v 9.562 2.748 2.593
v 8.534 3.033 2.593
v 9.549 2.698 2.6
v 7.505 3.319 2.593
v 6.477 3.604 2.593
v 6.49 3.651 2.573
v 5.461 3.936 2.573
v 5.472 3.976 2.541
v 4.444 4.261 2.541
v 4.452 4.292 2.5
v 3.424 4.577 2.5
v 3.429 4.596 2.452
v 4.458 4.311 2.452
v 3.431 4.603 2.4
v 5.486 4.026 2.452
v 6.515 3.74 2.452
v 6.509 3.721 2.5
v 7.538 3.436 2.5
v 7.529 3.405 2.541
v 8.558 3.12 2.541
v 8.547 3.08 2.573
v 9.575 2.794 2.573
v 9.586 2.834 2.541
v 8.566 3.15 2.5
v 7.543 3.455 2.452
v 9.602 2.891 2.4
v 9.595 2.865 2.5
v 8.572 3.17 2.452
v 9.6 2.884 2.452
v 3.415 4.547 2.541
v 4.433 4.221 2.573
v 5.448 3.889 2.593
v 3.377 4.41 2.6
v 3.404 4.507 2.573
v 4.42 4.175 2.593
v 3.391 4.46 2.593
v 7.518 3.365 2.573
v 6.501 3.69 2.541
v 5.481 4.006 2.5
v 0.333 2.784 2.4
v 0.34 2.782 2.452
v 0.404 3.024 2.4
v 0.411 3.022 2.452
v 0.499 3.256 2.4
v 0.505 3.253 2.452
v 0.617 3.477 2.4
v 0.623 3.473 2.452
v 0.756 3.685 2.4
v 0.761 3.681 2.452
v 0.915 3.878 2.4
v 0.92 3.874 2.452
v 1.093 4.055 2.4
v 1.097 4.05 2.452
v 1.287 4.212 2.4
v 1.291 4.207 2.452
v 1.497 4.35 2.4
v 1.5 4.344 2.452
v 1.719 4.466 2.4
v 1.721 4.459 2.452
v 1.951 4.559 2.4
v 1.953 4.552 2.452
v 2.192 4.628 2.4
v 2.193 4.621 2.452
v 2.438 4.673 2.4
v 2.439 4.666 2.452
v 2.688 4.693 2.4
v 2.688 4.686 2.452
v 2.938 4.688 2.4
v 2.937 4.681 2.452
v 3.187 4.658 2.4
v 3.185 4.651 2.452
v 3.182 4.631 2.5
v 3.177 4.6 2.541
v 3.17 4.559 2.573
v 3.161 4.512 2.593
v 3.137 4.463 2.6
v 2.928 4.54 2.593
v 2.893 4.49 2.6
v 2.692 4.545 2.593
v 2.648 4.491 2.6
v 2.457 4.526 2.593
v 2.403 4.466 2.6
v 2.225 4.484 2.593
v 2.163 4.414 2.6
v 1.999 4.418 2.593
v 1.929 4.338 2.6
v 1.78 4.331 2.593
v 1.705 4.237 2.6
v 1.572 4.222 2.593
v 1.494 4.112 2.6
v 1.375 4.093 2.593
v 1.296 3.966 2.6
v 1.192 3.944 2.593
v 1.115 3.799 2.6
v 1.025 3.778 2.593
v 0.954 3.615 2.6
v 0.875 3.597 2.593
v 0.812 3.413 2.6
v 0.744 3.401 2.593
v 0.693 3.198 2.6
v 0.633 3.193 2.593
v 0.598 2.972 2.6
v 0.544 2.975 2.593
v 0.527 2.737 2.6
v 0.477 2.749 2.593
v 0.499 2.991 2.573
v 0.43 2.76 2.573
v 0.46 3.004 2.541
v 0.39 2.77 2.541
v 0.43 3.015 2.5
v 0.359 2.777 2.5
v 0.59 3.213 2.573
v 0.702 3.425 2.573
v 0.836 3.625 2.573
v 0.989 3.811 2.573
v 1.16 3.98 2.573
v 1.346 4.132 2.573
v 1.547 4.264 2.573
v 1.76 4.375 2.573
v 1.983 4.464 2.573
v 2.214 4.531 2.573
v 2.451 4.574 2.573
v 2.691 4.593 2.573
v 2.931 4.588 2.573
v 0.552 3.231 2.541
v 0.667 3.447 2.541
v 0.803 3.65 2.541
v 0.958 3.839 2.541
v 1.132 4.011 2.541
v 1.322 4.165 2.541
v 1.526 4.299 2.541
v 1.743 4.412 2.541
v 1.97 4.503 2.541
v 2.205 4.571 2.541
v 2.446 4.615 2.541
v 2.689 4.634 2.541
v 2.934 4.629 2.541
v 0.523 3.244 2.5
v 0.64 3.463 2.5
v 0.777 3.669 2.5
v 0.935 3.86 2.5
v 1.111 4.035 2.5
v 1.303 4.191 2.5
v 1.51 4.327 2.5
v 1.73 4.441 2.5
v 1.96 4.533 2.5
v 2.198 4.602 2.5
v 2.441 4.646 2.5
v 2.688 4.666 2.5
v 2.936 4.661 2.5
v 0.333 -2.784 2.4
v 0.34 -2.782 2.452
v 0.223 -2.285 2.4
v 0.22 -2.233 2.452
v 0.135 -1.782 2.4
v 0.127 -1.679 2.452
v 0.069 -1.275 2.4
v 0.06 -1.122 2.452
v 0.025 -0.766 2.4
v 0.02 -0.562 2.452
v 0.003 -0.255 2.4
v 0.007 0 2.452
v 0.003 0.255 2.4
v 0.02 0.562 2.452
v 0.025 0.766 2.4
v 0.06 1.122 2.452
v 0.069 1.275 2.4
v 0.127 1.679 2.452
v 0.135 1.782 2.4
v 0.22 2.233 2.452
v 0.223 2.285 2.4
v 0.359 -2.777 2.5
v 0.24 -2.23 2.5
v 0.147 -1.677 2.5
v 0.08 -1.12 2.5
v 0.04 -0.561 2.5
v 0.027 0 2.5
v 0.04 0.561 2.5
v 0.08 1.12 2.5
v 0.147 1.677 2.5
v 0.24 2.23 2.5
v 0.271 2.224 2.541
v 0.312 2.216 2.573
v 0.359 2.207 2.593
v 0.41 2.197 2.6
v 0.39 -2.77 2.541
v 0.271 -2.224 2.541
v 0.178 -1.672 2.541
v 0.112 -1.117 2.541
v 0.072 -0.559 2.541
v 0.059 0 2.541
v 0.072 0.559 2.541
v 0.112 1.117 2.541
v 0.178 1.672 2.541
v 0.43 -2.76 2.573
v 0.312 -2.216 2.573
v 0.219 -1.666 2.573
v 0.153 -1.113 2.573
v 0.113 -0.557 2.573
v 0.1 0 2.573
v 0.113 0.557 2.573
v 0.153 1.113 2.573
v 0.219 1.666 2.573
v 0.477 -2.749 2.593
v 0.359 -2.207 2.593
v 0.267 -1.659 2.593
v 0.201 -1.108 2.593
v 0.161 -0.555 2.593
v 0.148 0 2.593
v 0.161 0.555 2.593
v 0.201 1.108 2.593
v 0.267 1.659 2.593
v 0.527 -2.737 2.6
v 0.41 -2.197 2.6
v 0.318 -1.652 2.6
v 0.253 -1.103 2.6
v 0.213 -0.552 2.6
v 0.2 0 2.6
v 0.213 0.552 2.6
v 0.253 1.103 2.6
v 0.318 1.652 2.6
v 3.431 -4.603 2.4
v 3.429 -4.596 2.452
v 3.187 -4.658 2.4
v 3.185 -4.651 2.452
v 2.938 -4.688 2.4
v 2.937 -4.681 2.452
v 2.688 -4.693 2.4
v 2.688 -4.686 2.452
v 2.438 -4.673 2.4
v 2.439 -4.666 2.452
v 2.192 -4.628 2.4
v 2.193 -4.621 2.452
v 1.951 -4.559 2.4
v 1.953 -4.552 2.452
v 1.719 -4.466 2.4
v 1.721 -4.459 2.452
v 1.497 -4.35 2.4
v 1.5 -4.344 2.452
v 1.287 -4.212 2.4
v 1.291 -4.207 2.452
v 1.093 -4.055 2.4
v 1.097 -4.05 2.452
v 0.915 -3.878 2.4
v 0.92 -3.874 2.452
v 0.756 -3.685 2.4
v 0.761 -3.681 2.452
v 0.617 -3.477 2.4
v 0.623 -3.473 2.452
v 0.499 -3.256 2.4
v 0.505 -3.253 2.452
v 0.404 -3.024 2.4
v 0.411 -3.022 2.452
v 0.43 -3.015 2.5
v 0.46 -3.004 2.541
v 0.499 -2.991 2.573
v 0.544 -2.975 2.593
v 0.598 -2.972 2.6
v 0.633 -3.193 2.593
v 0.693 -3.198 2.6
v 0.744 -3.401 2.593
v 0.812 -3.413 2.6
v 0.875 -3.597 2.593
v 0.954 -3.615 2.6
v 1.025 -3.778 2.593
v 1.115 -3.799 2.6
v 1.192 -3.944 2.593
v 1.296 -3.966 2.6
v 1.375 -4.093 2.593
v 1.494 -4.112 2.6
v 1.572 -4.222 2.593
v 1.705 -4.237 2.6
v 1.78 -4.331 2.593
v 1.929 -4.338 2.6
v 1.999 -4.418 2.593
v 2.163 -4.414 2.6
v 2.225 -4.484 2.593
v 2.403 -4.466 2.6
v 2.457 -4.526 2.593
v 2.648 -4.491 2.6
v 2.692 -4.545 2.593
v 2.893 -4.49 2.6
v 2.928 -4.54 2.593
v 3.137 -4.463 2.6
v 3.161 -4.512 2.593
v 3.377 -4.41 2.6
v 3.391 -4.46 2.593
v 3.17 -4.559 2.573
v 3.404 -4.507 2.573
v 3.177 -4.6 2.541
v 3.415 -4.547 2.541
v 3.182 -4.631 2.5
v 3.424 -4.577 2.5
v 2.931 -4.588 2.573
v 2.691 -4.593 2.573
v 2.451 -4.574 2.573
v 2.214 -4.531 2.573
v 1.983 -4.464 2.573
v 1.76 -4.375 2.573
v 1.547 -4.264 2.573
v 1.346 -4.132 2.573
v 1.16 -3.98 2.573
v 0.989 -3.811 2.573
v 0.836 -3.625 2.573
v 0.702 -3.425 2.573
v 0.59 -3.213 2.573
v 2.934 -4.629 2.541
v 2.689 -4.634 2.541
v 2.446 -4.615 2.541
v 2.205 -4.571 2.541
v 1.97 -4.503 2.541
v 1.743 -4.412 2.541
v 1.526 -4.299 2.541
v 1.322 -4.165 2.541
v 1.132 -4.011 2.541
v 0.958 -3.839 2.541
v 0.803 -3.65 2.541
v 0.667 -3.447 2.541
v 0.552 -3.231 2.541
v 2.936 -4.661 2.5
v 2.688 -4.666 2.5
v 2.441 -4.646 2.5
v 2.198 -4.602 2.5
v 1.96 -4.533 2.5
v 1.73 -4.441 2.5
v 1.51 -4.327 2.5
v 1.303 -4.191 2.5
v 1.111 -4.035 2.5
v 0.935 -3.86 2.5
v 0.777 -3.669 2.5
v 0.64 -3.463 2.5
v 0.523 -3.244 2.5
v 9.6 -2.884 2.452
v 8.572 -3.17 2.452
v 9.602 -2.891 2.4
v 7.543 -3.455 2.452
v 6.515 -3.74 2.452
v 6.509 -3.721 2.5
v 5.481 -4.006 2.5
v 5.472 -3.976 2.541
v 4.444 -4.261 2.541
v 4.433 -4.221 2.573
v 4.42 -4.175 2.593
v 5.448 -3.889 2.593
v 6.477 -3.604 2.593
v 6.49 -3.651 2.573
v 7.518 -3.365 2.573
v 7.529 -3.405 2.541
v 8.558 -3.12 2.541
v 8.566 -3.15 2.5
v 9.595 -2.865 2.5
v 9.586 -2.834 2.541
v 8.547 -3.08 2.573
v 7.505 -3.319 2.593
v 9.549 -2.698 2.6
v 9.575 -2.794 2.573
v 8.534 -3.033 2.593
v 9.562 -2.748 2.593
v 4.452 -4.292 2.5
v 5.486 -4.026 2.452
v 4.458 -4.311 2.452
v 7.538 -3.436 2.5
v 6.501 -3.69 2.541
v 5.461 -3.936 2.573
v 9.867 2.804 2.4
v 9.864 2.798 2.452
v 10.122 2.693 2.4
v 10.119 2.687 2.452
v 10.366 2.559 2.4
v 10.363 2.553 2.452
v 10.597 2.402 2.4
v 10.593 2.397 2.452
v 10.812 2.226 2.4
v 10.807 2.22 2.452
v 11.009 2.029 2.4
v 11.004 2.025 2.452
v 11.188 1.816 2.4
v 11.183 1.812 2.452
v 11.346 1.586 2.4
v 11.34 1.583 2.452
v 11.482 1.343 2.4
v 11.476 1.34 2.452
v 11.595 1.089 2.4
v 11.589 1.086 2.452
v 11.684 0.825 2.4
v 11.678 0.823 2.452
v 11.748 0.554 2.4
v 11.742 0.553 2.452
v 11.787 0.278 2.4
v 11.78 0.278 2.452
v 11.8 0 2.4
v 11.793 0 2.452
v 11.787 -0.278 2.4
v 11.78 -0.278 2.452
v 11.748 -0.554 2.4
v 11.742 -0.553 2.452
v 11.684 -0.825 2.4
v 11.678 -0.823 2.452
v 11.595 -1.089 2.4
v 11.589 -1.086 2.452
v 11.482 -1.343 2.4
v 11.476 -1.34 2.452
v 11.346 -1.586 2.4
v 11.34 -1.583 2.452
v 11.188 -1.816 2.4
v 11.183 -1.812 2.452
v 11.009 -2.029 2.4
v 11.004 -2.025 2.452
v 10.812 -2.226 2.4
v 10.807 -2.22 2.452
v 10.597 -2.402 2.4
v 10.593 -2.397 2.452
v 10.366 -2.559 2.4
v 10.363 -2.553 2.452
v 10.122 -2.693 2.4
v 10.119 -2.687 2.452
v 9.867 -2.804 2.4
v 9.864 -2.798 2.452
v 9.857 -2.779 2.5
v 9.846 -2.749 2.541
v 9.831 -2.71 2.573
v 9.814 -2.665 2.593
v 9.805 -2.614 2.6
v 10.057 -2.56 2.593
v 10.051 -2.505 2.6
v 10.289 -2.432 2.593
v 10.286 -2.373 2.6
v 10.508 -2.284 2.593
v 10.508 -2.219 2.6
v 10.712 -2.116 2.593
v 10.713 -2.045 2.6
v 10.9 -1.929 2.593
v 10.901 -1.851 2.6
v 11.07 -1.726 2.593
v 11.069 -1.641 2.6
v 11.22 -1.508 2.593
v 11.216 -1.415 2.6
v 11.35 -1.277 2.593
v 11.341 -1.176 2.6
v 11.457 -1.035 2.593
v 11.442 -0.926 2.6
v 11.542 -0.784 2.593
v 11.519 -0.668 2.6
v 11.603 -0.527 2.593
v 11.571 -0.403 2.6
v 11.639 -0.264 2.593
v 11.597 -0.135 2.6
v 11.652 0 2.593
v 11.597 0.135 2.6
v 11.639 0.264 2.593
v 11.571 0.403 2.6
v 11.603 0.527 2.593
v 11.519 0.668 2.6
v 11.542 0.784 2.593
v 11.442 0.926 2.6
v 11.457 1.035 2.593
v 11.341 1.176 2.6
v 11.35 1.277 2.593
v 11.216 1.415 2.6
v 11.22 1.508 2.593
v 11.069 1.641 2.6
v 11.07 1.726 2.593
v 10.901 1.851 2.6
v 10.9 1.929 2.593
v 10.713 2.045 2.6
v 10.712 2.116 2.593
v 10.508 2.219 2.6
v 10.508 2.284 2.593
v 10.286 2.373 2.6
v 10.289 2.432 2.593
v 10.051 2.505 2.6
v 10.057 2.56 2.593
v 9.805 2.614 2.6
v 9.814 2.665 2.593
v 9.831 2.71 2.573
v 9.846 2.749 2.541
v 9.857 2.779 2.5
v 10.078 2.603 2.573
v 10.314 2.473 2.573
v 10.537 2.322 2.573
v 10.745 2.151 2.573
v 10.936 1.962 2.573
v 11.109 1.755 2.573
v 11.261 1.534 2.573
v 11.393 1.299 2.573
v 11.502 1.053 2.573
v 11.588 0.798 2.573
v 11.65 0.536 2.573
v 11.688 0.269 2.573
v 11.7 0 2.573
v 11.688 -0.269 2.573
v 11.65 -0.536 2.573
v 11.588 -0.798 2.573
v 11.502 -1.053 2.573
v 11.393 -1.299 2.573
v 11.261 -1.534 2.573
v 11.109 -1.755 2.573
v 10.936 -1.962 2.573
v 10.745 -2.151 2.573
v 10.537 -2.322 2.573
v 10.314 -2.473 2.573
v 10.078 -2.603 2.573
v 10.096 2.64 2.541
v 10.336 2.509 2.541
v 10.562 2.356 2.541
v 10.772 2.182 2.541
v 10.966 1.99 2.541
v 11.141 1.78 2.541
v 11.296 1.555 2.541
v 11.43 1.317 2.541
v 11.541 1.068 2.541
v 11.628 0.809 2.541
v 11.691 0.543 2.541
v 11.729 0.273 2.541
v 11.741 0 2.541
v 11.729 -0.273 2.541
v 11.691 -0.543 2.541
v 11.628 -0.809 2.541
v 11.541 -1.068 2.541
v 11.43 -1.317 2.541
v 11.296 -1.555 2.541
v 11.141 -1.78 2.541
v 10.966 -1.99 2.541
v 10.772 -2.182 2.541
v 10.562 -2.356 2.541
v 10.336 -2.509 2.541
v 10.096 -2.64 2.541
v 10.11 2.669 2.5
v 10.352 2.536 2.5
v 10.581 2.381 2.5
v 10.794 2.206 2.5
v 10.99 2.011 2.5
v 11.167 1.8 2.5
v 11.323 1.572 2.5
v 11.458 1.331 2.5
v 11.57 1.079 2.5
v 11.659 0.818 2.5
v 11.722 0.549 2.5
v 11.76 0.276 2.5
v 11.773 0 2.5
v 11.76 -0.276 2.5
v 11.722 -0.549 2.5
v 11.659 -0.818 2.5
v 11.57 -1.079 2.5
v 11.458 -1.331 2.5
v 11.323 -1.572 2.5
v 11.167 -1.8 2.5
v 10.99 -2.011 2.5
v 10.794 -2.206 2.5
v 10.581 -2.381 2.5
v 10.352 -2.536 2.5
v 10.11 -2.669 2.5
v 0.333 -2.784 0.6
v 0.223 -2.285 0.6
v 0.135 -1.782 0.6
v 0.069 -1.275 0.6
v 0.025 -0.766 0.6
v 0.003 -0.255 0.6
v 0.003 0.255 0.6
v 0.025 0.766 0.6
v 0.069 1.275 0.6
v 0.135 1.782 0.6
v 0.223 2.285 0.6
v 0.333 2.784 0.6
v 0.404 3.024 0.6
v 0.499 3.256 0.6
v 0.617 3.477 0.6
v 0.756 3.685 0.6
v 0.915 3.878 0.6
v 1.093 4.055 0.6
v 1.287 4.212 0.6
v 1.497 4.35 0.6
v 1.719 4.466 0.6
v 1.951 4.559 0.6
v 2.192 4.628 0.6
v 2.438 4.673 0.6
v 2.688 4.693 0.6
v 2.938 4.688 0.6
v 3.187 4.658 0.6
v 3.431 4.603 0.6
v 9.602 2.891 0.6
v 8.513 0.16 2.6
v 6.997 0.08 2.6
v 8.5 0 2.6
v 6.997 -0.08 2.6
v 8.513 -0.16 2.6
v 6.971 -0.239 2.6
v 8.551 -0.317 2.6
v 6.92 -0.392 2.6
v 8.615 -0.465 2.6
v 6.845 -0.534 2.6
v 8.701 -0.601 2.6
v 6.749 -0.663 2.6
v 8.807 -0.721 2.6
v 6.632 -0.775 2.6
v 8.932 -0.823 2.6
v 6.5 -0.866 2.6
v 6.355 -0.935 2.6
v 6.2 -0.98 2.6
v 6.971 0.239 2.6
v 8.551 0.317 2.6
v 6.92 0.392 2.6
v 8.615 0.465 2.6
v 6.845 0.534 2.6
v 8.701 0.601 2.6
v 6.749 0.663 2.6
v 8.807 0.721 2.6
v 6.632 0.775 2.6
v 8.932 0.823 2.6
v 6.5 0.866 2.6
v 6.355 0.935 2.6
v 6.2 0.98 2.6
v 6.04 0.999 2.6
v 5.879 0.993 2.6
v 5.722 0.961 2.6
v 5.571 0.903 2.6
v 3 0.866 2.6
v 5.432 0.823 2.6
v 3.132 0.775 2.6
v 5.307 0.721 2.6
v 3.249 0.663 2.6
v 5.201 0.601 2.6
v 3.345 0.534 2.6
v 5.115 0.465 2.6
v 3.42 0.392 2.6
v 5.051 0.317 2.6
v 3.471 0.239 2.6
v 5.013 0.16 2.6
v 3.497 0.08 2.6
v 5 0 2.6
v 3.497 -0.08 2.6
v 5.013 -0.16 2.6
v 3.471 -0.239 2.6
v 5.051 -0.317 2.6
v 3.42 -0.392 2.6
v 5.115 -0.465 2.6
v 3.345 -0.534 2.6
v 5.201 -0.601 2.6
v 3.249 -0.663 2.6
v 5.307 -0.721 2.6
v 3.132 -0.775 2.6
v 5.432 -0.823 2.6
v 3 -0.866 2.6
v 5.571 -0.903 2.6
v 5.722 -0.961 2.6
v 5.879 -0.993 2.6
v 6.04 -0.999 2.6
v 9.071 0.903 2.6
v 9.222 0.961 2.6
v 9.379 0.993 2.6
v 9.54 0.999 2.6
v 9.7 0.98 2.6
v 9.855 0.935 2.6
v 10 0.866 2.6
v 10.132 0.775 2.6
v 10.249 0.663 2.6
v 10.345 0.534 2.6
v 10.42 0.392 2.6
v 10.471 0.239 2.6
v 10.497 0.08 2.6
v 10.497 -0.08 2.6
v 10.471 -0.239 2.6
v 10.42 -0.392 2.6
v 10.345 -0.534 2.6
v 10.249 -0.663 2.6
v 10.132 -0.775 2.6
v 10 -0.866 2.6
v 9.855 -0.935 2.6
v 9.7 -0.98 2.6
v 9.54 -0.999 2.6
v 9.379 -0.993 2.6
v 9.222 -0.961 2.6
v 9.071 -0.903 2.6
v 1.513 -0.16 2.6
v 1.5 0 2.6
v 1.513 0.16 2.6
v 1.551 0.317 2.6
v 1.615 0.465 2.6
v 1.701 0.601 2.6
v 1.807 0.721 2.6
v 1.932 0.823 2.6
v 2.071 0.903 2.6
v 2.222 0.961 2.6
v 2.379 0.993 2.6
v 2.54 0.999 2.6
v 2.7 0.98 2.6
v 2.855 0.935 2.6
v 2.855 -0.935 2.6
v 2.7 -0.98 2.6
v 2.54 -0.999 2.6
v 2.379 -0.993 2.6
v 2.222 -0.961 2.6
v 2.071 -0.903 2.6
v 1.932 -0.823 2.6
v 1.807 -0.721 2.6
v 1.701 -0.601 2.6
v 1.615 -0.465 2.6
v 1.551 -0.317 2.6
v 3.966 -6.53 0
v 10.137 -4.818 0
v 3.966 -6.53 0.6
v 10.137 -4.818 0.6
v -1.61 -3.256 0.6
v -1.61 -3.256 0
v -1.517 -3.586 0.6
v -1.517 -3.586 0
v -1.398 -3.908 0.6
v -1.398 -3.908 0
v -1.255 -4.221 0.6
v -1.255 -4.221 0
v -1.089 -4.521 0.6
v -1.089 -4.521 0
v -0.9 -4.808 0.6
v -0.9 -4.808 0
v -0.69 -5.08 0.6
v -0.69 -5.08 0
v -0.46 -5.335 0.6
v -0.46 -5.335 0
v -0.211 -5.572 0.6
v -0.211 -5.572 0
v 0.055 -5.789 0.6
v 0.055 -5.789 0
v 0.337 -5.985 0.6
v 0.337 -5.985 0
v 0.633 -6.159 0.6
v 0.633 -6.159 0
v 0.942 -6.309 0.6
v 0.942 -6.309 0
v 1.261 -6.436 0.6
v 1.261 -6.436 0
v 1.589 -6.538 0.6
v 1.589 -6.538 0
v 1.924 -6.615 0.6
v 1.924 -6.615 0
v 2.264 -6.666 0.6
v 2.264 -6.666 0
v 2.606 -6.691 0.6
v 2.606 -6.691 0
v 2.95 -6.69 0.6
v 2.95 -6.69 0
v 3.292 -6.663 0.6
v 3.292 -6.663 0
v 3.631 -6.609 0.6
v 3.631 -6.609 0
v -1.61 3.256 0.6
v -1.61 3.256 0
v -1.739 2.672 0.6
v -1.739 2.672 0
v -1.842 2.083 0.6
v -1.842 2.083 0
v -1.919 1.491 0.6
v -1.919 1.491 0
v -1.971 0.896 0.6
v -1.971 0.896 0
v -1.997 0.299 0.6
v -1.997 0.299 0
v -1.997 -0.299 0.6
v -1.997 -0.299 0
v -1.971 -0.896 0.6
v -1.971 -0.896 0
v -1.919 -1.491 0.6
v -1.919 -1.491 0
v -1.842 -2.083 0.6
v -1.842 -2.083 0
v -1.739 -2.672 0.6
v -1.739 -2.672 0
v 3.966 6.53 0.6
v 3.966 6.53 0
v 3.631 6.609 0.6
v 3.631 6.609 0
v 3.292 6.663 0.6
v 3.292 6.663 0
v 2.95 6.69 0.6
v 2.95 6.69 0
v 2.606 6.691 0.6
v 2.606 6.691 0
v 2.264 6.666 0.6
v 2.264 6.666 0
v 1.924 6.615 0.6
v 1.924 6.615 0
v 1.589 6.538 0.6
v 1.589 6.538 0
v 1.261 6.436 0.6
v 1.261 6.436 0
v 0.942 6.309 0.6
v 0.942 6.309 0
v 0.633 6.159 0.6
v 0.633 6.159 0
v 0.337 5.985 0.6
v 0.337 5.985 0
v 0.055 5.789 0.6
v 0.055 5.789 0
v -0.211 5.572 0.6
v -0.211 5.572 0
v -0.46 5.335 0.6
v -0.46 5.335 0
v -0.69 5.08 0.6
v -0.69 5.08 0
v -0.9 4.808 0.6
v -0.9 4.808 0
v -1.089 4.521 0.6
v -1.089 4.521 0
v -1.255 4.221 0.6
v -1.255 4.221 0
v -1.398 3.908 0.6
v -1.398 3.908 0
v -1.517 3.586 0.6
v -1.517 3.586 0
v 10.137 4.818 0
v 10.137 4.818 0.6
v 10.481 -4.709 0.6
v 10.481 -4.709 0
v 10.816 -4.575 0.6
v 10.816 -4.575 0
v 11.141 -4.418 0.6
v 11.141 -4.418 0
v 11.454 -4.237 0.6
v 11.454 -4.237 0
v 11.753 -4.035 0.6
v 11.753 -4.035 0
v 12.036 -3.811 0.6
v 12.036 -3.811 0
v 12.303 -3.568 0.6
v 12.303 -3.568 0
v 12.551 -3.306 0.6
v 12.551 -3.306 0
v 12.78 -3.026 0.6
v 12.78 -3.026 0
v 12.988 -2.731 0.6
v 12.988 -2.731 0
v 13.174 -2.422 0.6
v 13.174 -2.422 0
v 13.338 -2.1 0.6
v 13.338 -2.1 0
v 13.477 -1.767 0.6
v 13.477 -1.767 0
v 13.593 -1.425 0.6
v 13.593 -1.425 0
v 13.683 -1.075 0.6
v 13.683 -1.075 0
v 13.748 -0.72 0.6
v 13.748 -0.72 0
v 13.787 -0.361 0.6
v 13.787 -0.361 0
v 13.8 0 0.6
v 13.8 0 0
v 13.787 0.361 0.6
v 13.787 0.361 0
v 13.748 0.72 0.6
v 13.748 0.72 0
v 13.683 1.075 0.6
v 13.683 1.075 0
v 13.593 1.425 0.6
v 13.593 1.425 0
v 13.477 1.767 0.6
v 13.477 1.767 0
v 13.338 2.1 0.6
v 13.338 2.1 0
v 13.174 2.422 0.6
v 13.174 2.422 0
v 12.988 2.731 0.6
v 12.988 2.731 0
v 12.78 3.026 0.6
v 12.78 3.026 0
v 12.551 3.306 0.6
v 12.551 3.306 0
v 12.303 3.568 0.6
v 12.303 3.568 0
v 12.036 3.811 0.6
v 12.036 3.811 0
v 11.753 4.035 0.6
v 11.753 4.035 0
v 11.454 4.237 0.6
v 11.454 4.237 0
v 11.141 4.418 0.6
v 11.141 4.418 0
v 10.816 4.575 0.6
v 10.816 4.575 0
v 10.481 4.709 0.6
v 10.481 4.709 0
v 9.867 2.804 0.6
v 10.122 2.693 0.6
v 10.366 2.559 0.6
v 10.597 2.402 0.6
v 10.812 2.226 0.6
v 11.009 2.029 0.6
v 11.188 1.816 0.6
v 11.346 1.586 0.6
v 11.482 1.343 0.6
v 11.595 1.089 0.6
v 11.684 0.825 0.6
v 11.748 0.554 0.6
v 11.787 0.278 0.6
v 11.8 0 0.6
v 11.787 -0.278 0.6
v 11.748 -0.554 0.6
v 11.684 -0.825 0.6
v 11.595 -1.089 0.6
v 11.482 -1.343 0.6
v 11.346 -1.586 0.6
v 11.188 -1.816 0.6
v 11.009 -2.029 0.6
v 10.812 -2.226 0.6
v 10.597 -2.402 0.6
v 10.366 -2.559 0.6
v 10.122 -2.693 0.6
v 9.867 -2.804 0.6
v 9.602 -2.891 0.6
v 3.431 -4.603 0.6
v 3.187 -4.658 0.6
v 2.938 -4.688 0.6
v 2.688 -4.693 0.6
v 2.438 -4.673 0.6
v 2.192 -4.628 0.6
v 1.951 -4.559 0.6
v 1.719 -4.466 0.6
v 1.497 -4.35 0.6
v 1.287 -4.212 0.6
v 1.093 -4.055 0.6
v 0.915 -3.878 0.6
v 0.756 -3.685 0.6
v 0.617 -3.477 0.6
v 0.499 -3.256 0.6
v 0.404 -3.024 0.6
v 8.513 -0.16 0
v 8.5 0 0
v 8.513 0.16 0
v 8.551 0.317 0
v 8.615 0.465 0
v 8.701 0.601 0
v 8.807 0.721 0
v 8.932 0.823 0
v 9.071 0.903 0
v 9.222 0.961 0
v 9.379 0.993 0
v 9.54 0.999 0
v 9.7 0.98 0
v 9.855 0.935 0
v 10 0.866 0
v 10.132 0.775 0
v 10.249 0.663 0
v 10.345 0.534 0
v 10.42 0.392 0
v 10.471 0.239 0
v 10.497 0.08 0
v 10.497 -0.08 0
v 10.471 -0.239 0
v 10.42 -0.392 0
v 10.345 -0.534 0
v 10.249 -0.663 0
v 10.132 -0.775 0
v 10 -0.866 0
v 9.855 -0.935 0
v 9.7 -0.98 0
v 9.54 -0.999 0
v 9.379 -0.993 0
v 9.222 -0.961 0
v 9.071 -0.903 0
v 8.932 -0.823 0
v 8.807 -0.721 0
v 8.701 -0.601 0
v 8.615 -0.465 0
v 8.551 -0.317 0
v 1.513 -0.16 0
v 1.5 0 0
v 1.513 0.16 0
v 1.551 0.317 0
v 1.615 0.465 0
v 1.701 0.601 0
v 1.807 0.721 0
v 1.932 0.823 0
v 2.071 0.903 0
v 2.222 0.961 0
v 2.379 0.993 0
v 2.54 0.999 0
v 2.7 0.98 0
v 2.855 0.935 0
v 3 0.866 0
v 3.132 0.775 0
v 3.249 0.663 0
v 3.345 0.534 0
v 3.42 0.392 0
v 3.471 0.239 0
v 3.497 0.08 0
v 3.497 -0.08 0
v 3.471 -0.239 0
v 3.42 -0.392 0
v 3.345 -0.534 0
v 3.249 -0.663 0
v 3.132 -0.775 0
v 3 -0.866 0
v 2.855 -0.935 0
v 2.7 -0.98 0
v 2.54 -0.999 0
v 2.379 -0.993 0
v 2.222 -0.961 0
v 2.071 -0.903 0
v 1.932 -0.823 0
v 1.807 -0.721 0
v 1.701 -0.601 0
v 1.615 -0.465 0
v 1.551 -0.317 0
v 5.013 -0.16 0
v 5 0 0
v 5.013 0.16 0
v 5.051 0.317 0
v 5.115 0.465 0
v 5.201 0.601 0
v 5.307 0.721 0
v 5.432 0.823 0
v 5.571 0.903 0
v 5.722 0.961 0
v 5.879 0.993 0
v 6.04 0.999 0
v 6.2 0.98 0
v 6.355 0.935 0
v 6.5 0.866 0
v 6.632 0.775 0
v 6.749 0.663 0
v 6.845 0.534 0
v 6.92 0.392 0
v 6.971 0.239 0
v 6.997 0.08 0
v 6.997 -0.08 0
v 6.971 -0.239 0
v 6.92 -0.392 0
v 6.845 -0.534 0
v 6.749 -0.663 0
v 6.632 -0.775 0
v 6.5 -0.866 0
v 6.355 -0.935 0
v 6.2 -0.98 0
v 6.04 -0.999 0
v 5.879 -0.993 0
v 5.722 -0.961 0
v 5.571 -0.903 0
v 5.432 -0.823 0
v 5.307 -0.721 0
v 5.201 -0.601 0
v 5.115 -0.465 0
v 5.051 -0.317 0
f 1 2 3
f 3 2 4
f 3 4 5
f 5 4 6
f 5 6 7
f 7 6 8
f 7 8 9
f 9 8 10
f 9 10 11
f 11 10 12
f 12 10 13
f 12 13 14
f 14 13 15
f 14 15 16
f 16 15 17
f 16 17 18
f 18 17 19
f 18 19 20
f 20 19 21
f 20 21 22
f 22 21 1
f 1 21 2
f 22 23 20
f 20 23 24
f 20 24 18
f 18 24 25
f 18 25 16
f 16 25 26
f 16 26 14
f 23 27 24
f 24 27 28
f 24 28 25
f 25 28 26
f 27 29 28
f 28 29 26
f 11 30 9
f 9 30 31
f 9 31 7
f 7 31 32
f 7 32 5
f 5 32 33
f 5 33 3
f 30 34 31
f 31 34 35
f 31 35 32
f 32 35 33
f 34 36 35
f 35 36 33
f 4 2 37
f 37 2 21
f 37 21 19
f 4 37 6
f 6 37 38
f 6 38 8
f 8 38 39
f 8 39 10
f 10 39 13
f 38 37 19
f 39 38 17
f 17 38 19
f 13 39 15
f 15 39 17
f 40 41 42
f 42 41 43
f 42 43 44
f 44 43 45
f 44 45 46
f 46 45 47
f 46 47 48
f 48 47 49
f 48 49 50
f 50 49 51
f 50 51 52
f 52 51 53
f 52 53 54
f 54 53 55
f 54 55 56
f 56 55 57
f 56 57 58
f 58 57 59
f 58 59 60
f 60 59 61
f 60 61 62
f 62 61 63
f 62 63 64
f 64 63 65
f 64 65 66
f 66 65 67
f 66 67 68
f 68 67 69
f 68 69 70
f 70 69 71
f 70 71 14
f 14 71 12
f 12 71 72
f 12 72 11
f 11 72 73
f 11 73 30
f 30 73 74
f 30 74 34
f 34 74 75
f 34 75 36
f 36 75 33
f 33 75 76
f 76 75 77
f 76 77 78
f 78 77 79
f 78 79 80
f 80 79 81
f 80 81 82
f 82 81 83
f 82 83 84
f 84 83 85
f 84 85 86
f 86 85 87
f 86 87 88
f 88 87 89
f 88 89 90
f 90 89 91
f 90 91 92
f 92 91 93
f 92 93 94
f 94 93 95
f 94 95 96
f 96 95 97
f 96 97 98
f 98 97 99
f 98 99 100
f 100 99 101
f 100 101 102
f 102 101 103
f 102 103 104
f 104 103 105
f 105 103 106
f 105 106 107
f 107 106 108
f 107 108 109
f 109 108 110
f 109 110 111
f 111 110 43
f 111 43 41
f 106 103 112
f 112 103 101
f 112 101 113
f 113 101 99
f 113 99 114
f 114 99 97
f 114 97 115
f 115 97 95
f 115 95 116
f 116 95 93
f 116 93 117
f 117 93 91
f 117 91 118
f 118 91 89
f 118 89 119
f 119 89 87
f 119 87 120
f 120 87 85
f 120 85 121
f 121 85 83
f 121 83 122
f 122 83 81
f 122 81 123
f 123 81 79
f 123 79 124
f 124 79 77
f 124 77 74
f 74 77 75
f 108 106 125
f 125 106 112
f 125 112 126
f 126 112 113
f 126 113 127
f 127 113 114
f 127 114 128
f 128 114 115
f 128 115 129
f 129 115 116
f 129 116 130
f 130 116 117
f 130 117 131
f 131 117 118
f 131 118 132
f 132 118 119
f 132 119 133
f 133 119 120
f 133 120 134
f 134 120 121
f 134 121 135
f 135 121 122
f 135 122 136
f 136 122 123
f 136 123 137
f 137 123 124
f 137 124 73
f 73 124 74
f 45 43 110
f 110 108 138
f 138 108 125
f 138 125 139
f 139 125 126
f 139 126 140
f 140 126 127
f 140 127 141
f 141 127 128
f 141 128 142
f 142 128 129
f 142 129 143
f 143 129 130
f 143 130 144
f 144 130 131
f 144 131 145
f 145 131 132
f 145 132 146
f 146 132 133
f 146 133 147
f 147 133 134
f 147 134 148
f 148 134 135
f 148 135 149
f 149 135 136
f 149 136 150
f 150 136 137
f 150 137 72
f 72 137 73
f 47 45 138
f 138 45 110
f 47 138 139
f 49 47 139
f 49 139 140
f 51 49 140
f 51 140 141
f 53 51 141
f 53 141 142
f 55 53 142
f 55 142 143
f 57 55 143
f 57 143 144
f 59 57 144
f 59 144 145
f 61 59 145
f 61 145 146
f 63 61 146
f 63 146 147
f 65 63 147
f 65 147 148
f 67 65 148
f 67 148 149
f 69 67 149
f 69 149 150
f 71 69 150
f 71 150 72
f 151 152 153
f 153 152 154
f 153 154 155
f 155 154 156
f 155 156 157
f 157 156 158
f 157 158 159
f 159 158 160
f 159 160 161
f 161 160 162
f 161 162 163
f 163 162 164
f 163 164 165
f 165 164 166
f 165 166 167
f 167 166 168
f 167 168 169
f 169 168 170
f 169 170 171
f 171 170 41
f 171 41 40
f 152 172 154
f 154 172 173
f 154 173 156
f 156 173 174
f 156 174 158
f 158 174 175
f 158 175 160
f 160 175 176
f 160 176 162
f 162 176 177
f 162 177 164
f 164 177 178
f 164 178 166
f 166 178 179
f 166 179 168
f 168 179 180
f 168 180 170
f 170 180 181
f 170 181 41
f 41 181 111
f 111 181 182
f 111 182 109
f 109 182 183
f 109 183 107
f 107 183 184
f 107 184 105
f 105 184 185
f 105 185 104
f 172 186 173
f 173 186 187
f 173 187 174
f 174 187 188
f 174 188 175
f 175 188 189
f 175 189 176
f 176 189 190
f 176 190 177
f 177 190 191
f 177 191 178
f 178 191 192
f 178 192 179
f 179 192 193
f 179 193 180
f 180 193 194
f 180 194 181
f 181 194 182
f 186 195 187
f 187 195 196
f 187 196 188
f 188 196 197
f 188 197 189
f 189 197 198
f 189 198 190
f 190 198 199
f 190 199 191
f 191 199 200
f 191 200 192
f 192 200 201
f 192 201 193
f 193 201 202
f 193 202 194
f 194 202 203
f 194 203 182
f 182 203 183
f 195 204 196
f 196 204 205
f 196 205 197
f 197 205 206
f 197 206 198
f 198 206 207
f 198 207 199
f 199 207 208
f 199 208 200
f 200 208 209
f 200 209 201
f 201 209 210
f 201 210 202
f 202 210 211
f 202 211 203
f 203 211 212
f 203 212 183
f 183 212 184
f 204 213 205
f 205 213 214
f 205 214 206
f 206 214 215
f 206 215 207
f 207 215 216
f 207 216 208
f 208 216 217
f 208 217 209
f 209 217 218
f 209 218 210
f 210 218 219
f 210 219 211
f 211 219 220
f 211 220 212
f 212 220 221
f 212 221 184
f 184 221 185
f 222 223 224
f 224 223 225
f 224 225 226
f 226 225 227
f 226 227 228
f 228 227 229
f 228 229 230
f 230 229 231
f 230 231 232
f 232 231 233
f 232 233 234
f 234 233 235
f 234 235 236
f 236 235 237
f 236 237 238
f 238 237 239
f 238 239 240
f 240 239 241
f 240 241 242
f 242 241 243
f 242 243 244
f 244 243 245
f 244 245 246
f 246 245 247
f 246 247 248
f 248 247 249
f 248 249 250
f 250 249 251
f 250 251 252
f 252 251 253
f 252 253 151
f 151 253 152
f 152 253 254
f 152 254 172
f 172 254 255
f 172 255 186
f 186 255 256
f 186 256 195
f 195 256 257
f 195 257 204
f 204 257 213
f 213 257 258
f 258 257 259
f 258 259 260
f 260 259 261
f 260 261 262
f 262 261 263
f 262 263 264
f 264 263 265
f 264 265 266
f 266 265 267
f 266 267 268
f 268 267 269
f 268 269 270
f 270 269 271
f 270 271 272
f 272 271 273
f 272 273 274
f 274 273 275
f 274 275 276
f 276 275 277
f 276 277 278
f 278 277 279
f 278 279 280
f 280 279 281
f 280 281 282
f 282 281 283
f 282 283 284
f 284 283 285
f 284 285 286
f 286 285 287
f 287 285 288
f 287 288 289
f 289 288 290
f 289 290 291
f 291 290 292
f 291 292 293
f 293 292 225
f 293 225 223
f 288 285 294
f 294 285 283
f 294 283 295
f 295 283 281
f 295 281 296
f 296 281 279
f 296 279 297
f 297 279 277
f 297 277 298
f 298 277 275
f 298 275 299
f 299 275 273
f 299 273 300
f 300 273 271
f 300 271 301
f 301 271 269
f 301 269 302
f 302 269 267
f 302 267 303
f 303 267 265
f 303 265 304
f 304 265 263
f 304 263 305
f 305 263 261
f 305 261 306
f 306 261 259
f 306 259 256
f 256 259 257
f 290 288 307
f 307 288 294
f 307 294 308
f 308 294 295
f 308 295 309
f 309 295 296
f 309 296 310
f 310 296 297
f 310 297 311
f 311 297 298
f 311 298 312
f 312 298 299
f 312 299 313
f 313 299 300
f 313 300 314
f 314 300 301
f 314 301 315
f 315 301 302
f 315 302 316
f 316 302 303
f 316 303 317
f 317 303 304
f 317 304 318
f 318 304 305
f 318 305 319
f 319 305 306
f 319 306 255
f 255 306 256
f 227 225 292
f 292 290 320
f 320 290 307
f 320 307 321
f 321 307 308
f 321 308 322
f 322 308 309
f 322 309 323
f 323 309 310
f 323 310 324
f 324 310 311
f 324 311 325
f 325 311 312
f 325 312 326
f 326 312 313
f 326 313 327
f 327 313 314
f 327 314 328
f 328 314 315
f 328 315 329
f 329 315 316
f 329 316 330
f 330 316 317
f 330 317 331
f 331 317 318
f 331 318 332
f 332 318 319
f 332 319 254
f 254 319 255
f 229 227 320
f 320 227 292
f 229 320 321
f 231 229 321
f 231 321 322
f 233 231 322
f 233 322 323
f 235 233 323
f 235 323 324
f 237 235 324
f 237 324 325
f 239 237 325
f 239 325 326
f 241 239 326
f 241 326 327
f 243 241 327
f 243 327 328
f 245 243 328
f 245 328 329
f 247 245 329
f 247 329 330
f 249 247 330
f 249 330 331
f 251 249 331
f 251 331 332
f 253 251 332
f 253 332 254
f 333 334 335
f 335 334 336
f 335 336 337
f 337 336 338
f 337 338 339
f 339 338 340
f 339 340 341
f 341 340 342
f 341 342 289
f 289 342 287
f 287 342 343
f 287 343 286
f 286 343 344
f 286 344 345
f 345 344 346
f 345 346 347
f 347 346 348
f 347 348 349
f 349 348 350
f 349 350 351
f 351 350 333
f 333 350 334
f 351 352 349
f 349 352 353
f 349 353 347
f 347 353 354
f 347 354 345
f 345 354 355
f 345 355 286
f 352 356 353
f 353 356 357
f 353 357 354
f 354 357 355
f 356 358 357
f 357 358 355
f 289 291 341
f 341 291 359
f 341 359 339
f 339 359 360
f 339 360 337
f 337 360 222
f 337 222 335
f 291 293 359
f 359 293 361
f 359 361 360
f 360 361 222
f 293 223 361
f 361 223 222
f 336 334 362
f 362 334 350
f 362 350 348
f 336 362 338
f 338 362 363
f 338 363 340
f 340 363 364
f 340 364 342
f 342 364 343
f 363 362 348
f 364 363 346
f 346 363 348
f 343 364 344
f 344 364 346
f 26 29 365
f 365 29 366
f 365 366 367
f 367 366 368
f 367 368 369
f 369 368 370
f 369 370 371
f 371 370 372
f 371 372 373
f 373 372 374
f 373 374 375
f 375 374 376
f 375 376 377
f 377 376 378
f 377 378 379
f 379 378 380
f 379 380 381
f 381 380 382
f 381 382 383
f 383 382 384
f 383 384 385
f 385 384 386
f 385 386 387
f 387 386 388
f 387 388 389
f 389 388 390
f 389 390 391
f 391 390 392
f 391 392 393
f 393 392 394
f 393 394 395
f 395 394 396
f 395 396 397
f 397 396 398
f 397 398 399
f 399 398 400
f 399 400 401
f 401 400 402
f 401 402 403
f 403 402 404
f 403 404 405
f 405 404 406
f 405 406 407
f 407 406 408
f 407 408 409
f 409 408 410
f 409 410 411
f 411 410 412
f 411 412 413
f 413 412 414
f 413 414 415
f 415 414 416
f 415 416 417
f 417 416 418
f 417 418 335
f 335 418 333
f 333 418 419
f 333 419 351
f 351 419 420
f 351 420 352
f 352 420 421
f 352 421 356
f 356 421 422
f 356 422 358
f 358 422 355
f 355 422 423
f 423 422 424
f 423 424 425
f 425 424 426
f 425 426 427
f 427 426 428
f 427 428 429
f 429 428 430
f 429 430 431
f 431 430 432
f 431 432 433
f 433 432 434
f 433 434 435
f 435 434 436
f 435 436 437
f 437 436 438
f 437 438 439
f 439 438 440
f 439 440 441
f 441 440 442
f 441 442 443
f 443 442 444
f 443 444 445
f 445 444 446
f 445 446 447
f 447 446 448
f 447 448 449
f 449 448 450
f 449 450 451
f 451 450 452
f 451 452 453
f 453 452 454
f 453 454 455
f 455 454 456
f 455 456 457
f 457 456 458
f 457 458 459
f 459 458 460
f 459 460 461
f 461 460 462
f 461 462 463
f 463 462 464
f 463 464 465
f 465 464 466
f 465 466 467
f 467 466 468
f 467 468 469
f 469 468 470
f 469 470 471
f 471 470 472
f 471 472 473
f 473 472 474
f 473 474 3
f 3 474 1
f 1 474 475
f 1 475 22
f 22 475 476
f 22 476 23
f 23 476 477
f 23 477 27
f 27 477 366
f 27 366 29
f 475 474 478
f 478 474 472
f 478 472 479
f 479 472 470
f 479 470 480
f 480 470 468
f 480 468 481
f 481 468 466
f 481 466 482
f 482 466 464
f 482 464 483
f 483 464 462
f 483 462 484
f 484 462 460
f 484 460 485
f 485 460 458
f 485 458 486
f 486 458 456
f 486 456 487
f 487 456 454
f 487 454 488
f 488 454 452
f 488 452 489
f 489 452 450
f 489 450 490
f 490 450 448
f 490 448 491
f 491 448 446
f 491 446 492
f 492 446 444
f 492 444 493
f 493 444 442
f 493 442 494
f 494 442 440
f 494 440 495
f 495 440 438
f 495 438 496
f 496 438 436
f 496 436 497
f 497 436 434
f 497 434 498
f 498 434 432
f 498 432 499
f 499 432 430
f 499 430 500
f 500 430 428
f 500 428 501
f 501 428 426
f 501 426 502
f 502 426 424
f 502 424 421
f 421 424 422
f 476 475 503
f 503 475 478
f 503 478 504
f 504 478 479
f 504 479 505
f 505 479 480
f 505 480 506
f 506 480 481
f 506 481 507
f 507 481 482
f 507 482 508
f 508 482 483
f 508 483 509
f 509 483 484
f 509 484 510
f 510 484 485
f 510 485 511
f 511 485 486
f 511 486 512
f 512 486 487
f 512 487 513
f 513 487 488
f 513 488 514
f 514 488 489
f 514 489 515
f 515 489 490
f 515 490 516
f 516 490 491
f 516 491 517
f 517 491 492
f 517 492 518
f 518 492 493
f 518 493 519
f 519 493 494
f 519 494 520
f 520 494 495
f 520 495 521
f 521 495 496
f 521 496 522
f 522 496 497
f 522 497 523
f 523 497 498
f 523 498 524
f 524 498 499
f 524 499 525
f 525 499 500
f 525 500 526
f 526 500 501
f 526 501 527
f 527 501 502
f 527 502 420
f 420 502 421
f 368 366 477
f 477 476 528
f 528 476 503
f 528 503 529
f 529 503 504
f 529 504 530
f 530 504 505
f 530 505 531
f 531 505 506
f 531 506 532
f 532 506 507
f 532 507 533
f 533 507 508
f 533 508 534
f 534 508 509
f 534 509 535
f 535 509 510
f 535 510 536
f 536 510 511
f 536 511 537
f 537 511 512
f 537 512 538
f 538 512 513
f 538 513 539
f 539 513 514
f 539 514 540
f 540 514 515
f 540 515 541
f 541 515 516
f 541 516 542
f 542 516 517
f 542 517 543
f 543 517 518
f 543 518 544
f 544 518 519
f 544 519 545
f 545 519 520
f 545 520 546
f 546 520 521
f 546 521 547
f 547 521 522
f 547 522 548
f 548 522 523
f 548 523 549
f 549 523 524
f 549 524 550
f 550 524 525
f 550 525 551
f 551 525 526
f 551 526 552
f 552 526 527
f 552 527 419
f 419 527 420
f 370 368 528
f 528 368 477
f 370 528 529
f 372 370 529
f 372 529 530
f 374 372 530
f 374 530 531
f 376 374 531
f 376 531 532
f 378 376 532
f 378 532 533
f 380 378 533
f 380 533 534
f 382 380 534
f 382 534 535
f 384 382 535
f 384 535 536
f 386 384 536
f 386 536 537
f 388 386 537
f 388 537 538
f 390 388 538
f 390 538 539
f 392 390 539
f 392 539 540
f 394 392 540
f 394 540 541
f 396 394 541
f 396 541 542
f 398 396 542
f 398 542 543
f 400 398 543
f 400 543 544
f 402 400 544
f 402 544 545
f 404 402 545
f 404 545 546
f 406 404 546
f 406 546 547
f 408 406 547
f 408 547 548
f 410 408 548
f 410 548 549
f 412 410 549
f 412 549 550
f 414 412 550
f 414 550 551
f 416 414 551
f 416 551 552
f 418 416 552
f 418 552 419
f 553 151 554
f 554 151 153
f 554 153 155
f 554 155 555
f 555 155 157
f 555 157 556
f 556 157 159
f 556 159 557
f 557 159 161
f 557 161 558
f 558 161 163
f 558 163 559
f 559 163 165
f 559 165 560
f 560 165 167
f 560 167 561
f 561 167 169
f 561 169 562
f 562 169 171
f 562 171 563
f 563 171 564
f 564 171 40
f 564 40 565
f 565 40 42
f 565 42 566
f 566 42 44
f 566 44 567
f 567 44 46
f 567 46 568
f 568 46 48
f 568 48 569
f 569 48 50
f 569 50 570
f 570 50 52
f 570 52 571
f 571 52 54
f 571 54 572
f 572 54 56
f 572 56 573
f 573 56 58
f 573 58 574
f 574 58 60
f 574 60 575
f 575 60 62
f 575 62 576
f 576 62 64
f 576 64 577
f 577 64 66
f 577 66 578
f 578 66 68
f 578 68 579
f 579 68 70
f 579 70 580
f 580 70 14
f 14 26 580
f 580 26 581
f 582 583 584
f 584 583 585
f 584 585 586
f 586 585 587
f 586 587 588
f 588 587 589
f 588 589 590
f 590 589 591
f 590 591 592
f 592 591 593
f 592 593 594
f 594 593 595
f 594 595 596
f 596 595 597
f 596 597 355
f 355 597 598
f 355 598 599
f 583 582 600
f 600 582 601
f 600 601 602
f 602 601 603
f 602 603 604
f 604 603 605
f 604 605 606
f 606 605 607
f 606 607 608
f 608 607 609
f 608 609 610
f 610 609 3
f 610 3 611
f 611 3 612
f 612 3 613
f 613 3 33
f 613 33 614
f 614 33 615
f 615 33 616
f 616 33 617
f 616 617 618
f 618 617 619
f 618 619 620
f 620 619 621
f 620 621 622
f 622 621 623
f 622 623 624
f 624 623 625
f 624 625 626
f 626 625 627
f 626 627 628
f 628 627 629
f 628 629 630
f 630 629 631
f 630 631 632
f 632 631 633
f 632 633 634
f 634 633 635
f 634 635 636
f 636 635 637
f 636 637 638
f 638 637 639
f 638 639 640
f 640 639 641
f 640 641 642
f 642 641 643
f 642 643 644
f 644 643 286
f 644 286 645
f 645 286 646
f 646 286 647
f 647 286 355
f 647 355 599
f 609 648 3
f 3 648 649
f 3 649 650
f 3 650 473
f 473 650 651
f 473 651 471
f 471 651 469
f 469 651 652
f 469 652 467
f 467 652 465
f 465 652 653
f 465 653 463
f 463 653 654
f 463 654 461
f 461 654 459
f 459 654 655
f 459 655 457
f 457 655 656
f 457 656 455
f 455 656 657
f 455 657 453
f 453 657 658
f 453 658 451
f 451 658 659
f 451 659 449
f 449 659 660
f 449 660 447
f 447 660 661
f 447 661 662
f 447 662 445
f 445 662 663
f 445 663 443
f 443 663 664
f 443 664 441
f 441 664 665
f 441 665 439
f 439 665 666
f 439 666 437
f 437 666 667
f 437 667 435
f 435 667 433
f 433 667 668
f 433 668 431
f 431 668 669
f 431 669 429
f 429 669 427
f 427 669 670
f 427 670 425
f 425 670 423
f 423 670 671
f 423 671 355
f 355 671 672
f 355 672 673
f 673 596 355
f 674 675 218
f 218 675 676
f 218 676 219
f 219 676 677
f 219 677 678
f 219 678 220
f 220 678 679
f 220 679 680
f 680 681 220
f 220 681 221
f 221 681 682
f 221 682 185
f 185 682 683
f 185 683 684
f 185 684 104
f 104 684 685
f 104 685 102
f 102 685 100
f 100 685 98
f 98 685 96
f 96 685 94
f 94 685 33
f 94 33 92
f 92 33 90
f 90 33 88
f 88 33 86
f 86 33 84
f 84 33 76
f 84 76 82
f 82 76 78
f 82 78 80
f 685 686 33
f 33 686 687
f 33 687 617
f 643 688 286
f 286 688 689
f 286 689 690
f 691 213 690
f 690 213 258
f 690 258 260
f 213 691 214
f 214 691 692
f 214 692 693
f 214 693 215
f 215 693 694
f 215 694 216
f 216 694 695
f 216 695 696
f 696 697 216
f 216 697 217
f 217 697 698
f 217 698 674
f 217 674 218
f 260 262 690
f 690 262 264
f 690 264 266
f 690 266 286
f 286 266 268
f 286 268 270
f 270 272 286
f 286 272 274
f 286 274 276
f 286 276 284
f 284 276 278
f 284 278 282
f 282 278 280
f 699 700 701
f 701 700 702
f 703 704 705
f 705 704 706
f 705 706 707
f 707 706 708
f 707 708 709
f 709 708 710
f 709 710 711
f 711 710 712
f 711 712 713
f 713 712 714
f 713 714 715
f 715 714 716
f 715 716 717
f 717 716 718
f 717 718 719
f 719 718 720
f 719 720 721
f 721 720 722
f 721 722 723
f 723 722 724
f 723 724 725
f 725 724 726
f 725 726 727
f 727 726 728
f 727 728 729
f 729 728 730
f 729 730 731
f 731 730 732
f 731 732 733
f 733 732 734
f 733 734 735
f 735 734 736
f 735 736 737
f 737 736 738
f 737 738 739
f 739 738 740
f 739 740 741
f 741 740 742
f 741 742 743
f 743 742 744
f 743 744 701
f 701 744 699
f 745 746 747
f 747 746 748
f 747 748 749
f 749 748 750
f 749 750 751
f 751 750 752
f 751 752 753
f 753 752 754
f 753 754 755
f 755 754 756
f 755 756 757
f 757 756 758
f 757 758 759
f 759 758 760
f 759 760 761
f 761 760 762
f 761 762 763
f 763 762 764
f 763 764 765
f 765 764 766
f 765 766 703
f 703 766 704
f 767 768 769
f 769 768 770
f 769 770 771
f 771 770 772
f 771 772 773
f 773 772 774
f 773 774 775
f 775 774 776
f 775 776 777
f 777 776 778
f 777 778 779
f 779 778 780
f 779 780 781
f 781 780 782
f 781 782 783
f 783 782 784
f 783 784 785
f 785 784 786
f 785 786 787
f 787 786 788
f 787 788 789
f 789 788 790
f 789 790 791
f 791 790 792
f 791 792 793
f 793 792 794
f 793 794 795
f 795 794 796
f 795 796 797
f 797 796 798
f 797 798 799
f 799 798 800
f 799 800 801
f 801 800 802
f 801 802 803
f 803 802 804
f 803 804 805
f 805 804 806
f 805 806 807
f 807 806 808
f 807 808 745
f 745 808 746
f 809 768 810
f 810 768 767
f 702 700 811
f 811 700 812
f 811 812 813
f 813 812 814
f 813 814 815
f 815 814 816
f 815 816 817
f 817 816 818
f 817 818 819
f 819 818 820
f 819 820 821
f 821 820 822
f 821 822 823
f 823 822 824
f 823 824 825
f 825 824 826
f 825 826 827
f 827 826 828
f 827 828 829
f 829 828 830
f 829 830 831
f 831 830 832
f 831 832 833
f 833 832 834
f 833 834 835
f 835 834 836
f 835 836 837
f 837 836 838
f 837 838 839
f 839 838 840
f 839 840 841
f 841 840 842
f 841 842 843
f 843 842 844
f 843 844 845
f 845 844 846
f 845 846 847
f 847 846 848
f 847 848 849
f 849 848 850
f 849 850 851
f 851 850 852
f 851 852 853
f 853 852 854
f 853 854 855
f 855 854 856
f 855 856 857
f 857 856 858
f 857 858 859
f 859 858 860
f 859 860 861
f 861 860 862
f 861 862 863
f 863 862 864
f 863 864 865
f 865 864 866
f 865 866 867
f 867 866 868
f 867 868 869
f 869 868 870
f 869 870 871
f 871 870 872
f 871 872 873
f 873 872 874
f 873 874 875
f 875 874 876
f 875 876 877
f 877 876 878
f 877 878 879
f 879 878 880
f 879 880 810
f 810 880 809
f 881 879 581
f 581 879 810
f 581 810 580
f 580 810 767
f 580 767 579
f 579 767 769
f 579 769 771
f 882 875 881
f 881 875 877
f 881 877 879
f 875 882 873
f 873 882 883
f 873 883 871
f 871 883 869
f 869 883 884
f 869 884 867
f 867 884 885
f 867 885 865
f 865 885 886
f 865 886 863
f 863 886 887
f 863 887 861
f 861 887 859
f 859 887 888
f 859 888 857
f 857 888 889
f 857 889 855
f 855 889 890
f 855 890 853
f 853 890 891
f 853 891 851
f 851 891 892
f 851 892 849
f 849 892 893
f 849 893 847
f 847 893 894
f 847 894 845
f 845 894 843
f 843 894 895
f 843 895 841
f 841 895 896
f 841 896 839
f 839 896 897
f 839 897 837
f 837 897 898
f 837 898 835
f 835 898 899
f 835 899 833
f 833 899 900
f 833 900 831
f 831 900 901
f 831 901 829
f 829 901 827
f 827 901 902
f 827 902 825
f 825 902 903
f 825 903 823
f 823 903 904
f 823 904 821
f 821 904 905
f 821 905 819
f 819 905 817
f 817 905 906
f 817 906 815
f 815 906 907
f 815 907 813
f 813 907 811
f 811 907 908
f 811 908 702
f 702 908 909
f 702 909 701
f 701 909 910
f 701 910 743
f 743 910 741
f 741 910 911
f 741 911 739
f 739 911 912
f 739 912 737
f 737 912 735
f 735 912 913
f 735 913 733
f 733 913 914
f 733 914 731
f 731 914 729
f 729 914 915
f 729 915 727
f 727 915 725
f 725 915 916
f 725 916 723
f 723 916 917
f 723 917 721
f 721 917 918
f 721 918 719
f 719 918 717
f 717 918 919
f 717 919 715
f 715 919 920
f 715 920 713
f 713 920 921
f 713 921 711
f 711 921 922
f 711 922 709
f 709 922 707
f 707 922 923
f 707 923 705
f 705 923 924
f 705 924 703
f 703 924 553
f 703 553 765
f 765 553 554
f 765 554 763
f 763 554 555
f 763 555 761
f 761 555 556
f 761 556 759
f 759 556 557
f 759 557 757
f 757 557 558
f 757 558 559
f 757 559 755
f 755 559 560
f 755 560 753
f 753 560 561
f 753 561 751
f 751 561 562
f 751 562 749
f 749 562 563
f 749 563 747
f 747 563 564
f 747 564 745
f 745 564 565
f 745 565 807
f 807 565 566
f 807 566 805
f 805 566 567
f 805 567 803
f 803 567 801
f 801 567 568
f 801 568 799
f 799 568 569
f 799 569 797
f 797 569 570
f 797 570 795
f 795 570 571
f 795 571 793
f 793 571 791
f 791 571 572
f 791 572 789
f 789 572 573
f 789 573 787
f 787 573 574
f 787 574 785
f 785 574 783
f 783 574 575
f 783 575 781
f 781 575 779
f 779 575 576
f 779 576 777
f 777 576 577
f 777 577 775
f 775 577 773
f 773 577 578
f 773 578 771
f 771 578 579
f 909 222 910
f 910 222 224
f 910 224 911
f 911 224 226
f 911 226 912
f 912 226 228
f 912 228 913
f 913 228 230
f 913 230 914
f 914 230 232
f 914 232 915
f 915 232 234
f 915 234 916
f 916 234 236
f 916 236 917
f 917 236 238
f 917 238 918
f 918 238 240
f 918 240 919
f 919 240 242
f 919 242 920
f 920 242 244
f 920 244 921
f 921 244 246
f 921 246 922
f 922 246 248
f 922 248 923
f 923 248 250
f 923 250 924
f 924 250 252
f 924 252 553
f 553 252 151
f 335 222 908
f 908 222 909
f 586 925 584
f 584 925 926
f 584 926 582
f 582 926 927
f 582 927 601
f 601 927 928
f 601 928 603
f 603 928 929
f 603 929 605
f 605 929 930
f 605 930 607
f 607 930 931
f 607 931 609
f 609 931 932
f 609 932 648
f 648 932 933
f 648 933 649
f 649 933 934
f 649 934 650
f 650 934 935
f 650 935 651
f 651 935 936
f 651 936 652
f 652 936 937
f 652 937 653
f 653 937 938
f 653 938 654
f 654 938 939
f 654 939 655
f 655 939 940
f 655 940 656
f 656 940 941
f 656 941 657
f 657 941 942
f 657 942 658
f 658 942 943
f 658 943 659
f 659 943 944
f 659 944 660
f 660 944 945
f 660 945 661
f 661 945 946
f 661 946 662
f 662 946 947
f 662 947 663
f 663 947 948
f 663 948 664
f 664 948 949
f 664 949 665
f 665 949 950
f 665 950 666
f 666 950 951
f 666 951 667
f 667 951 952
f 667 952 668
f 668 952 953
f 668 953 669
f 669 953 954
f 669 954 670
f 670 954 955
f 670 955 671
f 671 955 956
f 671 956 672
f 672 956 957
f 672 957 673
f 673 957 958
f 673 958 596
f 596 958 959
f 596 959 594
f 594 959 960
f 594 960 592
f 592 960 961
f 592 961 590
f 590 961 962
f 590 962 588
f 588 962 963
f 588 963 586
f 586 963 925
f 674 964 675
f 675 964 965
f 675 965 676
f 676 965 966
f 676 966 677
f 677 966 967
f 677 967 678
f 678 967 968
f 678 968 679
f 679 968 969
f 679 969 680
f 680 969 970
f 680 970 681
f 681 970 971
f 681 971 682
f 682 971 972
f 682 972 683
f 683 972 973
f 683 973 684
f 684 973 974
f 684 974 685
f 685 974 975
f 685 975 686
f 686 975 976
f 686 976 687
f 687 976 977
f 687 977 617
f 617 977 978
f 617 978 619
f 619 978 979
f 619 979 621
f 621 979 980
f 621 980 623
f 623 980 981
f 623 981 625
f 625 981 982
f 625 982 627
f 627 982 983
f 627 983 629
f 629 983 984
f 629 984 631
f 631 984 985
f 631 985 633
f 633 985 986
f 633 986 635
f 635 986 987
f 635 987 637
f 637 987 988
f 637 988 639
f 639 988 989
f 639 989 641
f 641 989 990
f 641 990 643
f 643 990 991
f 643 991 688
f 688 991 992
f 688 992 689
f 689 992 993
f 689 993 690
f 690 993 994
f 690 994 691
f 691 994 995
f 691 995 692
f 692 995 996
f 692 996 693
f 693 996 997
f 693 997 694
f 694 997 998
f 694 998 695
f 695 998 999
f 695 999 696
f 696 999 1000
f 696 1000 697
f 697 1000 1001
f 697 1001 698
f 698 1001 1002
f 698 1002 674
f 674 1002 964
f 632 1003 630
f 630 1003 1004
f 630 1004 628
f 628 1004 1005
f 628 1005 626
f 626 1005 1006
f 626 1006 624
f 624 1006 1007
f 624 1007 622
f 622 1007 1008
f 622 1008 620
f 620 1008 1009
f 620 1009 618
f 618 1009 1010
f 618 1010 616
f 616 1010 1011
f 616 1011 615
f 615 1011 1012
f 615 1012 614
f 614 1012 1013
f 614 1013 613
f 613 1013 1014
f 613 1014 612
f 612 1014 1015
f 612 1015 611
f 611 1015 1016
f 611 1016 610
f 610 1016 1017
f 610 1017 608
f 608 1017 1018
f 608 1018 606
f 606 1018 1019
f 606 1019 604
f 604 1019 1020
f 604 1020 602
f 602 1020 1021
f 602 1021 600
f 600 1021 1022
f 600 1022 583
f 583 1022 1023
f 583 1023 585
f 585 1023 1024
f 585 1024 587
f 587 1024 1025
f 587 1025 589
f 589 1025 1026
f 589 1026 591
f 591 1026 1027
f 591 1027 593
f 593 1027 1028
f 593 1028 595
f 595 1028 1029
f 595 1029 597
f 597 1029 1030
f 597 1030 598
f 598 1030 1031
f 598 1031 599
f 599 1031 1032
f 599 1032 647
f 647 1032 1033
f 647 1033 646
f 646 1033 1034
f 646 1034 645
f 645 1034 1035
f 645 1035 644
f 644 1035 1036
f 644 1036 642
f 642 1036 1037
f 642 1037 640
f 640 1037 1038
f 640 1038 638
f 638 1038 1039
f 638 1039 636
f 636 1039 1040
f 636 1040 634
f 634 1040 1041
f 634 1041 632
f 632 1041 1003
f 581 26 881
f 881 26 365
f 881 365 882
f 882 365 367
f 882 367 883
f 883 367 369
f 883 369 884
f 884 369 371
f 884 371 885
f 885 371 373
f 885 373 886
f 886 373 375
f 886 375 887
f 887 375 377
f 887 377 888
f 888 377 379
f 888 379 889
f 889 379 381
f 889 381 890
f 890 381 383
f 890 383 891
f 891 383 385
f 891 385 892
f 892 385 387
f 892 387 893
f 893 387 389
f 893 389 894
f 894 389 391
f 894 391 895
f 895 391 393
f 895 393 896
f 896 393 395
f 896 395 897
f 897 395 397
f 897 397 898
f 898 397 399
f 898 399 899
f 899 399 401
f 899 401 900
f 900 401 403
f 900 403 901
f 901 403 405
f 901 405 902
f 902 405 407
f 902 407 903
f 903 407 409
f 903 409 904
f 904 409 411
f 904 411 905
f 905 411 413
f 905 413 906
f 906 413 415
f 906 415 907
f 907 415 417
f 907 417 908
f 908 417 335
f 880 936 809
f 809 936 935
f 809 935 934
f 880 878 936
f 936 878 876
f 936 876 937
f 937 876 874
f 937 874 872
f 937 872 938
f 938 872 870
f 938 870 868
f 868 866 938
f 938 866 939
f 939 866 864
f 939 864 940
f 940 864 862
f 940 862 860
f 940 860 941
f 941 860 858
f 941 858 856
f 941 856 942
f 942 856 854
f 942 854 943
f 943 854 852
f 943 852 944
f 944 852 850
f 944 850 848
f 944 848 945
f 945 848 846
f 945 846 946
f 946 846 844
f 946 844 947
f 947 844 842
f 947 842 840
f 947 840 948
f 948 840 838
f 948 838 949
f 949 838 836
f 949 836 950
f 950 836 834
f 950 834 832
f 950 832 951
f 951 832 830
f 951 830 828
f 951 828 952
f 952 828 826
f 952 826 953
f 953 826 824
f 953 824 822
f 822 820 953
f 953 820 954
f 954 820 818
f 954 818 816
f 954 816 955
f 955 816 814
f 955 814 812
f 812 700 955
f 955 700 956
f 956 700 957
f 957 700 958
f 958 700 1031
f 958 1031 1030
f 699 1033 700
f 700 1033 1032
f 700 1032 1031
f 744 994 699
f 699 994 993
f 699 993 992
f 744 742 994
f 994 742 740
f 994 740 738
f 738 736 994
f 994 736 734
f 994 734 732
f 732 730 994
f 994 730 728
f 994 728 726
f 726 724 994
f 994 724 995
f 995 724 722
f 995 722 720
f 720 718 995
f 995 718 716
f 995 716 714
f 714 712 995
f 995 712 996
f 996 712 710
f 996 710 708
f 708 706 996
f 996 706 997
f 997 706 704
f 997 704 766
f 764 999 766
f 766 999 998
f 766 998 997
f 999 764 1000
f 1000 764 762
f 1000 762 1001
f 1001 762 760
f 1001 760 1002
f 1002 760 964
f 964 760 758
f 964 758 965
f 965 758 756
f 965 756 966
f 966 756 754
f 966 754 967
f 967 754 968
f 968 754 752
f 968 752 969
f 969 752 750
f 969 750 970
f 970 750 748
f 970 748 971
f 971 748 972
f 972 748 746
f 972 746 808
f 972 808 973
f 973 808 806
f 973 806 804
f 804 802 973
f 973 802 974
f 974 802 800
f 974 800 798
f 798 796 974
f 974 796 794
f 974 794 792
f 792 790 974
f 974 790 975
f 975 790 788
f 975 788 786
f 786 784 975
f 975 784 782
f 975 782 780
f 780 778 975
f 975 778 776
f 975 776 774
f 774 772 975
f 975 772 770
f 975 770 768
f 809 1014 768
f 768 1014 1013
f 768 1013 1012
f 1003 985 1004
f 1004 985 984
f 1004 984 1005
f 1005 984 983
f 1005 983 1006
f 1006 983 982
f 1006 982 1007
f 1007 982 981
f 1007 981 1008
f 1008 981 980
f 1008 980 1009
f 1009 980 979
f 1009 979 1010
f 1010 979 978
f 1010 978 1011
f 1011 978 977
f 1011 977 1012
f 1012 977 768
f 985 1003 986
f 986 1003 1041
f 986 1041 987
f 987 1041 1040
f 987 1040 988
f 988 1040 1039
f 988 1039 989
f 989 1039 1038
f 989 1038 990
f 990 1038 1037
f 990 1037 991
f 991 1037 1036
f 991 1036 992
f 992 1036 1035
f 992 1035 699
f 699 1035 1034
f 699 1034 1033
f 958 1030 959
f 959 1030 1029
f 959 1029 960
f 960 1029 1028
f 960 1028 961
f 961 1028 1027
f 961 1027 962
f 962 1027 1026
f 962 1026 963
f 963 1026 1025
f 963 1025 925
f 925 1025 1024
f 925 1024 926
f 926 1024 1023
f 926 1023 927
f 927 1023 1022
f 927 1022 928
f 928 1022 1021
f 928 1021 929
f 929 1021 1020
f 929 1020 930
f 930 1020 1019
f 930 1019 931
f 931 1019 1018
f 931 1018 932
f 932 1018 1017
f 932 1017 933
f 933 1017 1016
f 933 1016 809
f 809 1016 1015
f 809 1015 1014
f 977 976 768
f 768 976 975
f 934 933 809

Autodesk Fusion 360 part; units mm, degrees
sketch "Sketch1" plane through (0, 0, 0) normal (0, 0, 1) x (1, 0, 0)
  line L0 (0, 0) -> (11.8, 0) construction
  line L1 (2, 0) -> (2, 4.9481) construction
  line L2 (9.6021, 2.8908) -> (3.4309, 4.603)
  arc A0 (0.3331, 2.7838) -> (0, 0) centre (11.8, 0) ccw
  arc A1 (11.8, 0) -> (9.6021, 2.8908) centre (8.8, 0) ccw
  arc A2 (3.4309, 4.603) -> (0.3331, 2.7838) centre (2.7625, 2.194) ccw
  arc A3 (0, 0) -> (0.3331, -2.7838) centre (11.8, 0) ccw
  arc A4 (0.3331, -2.7838) -> (3.4309, -4.603) centre (2.7625, -2.194) ccw
  line L3 (9.6021, -2.8908) -> (3.4309, -4.603)
  arc A5 (9.6021, -2.8908) -> (11.8, 0) centre (8.8, 0) ccw
  circle A6 centre (6, 0) radius 1
  circle A7 centre (2.5, 0) radius 1
  circle A8 centre (9.5, 0) radius 1
  arc A9 (-2, 0) -> (-1.6105, -3.2556) centre (11.8, 0) ccw
  arc A10 (-1.6105, -3.2556) -> (3.9656, -6.5302) centre (2.7625, -2.194) ccw
  line L4 (10.1368, -4.818) -> (3.9656, -6.5302)
  arc A11 (10.1368, -4.818) -> (13.8, 0) centre (8.8, 0) ccw
  arc A12 (13.8, 0) -> (10.1368, 4.818) centre (8.8, 0) ccw
  line L5 (10.1368, 4.818) -> (3.9656, 6.5302)
  arc A13 (3.9656, 6.5302) -> (-1.6105, 3.2556) centre (2.7625, 2.194) ccw
  arc A14 (-1.6105, 3.2556) -> (-2, 0) centre (11.8, 0) ccw
  dimension "d1" = 11.8
  dimension "d2" = 6
  dimension "d4" = 5
  dimension "d5" = 2
  dimension "d6" = 6
  dimension "d7" = 2
  dimension "d8" = 2.5
  dimension "d9" = 2
  dimension "d10" = 3.5
  dimension "d11" = 2
extrude "Extrude1" add sketch "Sketch1" along normal blind 2.6 contours L2 A0 A1 A2 A3 A4 L3 A5
extrude "Extrude2" add sketch "Sketch1" along normal blind 0.6 contours A9 A10 L4 A11 A12 L5 A13 A14
fillet "Fillet1" radius 0.2 6 edges at (6.5165, 3.7469, 2.6) (1.4965, 4.3498, 2.6) (0, 0, 2.6) (1.4965, -4.3498, 2.6) (6.5165, -3.7469, 2.6) (11.8, 0, 2.6)
